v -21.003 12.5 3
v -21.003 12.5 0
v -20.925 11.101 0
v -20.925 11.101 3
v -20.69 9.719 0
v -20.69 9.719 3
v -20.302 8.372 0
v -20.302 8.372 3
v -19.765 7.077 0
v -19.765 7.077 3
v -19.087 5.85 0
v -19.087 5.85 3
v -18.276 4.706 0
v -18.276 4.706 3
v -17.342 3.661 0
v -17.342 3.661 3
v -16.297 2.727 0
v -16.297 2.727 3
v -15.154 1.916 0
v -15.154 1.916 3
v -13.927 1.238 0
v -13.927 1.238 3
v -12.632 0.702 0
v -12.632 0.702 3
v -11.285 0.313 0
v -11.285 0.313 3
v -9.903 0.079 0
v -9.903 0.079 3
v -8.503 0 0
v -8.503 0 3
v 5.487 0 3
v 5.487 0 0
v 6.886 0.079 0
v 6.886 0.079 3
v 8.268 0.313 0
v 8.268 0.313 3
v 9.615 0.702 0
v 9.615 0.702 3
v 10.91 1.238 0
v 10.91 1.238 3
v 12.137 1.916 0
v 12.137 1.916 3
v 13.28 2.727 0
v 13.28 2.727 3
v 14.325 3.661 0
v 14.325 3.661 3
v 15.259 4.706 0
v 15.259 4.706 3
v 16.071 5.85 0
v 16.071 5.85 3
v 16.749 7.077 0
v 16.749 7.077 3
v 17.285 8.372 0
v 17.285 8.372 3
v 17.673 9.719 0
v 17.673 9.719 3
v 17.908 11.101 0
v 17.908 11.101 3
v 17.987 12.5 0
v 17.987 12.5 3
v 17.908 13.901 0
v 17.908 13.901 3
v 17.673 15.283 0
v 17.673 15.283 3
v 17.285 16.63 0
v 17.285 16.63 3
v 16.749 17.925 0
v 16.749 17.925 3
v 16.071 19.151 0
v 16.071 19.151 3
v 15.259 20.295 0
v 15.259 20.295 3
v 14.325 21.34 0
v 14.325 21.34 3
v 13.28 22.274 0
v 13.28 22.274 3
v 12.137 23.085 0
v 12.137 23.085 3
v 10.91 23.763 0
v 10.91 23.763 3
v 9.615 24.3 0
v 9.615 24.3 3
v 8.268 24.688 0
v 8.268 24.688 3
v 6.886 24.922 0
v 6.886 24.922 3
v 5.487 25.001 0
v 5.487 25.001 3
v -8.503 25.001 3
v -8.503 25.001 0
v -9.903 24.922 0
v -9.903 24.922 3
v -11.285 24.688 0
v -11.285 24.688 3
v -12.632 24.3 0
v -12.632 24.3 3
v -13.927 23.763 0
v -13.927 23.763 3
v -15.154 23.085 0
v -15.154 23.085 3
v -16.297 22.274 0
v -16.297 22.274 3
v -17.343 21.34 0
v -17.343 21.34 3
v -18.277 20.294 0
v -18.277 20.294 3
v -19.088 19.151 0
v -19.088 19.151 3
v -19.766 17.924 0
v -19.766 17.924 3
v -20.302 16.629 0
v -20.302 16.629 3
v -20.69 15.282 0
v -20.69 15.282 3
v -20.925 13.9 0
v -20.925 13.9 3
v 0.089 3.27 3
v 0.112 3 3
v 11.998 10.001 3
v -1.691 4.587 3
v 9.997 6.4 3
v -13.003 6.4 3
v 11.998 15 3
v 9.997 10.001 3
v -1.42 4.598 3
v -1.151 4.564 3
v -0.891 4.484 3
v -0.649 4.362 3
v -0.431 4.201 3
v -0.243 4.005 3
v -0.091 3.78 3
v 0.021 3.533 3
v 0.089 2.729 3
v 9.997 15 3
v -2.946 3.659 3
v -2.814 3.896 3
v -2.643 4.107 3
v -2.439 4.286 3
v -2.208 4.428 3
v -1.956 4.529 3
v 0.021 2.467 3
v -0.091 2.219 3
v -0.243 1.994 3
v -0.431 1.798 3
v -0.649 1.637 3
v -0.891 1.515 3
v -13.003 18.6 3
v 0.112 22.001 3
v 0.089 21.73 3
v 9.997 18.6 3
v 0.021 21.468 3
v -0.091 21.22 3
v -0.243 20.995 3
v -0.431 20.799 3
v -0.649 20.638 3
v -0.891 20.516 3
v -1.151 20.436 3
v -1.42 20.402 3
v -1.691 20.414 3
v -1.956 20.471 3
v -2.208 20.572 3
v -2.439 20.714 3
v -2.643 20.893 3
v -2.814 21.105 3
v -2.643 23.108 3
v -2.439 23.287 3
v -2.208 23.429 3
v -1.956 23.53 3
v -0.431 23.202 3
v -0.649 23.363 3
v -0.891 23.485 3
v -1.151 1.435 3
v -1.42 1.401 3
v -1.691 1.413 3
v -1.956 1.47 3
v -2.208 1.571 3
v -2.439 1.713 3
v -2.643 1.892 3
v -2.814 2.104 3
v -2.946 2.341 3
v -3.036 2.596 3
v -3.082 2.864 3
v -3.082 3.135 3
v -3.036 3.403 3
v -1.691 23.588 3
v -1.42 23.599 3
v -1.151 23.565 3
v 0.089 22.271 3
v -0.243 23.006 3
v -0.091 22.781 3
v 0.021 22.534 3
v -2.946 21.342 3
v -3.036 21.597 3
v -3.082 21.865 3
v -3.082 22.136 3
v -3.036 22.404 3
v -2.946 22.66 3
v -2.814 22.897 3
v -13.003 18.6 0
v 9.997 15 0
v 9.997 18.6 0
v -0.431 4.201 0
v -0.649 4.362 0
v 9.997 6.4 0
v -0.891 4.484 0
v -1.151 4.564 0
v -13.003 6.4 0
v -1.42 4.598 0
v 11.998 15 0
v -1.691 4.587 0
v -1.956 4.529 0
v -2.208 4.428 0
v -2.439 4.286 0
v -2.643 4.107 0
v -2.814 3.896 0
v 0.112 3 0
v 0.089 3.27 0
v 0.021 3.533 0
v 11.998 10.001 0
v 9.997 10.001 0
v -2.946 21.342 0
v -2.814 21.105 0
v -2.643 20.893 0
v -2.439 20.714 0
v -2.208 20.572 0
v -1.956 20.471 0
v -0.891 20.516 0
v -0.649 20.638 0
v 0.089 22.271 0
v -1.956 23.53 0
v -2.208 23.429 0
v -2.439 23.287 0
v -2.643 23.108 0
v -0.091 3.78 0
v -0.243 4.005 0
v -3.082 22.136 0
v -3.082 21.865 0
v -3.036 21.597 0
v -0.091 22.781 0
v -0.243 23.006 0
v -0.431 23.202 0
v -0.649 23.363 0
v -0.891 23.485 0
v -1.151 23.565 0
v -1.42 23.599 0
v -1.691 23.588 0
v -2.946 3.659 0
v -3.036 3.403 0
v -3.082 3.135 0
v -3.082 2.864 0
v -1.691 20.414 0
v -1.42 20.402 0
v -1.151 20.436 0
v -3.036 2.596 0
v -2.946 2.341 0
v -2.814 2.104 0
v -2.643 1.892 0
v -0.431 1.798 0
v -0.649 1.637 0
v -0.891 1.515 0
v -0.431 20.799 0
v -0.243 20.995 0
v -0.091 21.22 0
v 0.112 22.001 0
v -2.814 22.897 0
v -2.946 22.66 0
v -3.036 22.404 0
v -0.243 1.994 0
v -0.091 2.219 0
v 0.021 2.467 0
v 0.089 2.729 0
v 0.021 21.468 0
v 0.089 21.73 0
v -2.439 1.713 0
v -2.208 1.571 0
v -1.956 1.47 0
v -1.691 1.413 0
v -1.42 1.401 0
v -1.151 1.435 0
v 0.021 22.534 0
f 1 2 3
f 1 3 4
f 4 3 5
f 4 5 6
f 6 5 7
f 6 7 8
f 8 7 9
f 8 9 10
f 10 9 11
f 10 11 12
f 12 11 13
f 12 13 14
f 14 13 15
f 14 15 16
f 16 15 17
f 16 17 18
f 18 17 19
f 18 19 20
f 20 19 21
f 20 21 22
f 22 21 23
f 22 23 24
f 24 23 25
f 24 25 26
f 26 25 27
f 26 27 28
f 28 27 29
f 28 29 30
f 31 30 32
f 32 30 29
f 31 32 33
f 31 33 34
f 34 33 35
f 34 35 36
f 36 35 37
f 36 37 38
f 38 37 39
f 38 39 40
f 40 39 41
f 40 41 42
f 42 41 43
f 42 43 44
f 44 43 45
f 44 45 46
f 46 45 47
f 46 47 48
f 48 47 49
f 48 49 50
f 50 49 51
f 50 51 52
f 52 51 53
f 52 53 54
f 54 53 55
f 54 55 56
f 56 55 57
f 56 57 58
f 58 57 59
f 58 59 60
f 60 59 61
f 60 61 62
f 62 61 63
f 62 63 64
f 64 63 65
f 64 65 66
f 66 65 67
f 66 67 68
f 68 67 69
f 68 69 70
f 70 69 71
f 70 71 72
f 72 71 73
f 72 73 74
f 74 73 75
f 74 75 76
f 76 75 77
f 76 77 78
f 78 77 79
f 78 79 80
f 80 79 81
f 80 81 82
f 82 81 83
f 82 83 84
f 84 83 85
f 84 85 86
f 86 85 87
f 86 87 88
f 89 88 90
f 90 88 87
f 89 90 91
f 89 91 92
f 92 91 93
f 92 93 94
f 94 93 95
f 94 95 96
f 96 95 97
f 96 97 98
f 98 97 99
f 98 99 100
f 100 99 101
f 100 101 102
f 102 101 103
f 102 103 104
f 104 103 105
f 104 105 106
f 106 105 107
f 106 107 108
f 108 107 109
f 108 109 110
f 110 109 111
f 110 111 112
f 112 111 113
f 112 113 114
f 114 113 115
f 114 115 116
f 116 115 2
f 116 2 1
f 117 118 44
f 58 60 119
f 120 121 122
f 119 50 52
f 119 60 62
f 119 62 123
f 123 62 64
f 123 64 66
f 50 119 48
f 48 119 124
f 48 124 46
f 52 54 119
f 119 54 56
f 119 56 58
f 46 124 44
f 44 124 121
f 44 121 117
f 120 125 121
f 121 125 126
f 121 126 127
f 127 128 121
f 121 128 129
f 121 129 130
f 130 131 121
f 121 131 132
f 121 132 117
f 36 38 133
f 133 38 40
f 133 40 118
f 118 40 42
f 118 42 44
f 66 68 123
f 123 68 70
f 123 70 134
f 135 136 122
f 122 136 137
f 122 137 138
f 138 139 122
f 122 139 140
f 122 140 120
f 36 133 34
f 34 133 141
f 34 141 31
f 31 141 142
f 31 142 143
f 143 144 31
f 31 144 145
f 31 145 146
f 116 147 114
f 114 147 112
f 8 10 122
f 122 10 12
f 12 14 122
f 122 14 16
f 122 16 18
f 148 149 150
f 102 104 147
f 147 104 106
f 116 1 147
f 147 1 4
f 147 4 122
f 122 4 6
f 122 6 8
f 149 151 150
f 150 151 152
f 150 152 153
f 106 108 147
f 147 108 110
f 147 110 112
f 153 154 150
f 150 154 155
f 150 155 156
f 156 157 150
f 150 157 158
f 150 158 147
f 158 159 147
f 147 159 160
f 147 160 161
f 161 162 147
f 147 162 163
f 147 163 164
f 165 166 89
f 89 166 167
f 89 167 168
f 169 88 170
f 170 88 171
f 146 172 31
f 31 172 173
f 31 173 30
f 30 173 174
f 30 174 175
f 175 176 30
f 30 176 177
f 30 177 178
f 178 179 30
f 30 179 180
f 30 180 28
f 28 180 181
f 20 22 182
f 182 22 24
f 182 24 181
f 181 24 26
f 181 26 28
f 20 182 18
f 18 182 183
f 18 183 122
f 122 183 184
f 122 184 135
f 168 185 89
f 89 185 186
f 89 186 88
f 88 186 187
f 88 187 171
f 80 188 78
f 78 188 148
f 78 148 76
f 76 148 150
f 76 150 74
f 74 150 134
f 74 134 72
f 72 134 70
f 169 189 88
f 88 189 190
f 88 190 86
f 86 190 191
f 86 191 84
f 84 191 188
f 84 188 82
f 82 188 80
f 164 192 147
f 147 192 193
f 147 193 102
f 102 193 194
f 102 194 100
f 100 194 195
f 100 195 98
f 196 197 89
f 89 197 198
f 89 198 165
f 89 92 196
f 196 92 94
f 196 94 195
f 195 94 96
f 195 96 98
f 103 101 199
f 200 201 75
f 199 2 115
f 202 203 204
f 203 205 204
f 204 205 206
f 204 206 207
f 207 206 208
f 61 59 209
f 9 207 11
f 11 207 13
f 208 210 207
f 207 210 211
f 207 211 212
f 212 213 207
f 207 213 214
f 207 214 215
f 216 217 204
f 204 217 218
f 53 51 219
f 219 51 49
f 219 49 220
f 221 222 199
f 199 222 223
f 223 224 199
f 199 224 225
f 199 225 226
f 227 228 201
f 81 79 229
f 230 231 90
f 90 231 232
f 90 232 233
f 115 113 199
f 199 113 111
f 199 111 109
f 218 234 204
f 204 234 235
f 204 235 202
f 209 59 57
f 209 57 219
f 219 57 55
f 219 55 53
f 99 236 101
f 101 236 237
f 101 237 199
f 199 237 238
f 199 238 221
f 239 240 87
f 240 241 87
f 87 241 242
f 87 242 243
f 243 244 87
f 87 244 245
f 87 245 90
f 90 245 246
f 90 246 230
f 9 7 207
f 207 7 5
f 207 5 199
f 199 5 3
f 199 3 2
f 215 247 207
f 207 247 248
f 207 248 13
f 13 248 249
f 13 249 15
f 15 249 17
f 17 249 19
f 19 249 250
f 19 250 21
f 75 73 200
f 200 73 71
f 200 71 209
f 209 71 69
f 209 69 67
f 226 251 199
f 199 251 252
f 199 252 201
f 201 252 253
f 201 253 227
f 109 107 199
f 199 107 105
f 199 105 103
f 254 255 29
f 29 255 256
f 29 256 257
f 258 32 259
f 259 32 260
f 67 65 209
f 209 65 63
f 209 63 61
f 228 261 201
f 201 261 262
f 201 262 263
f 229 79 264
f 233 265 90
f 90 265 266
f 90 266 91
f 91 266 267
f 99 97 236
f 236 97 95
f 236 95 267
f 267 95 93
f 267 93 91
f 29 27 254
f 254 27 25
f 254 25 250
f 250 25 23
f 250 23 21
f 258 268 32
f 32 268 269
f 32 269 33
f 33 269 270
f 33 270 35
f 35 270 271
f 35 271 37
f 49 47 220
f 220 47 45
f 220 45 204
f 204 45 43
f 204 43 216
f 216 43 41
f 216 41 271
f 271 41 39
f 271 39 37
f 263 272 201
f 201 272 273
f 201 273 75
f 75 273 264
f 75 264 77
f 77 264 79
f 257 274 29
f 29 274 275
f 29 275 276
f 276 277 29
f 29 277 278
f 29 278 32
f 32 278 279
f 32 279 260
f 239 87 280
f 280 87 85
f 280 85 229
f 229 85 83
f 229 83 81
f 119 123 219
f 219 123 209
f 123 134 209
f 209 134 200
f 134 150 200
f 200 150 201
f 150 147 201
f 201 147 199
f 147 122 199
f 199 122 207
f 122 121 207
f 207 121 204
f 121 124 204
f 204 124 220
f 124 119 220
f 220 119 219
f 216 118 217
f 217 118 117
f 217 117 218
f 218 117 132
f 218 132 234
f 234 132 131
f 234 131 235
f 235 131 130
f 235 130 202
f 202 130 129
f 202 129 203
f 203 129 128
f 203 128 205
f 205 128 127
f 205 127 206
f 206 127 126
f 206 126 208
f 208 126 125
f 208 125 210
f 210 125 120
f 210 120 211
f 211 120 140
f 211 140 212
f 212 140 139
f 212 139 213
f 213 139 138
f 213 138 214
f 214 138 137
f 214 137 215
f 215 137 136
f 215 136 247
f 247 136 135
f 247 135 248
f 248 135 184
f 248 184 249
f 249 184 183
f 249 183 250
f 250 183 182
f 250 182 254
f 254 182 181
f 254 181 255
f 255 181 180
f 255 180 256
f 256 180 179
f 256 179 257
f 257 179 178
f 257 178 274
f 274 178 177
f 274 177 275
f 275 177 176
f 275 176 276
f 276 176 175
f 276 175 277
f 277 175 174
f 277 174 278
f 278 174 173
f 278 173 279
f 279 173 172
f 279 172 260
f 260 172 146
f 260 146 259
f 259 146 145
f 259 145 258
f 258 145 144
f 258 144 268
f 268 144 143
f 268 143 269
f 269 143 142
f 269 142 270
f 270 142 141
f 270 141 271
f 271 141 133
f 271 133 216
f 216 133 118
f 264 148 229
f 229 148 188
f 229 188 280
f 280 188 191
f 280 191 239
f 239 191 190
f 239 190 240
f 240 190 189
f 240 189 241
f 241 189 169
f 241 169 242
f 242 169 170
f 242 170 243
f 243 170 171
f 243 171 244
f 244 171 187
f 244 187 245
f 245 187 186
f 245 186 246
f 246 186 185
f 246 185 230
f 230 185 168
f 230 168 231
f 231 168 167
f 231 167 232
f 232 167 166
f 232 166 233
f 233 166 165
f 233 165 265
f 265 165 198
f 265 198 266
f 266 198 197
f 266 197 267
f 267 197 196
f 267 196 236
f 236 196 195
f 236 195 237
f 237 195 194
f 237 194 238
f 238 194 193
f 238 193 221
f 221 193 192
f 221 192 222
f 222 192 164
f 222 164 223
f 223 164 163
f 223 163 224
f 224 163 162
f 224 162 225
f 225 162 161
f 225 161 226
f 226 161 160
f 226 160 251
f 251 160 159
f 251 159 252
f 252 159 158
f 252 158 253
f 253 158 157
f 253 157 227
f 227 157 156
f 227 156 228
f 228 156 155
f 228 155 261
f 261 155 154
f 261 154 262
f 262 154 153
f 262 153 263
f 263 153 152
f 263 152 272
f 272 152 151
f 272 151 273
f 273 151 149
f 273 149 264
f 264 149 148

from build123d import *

# Parameters (mm, degrees)
SKETCH_1_R          = 1.3
EXTRUDE_1_DEPTH     = 3
SKETCH_2_R          = 1.6
CUT_EXTRUDE_1_DEPTH = 33.790082592


with BuildPart() as part:
    # 草图1 → 凸台-拉伸1 (new body)
    with BuildSketch(Plane(origin=(0, 0, 0), x_dir=(-1, 0, 0), z_dir=(0, 0, -1))):
        with BuildLine():
            Line((8.503321513, 25.001), (-5.486589193, 25.001))
            ThreePointArc((-5.486589193, 25.001), (-14.325423958, 21.339834765), (-17.986589193, 12.501))
            Line((-17.986589193, 12.501), (-17.986589193, 12.5))
            ThreePointArc((-17.986589193, 12.5), (-14.325423958, 3.661165235), (-5.486589193, 0))
            Line((-5.486589193, 0), (8.503321493, 0))
            ThreePointArc((8.503321493, 0), (17.342156257, 3.661165235), (21.003321493, 12.5))
            ThreePointArc((21.003321493, 12.5), (17.342509831, 21.339481206), (8.503321513, 25.001))
        make_face()
        with Locations(Location((1.487905971, 22.0005, 0), (0, 0, 180))):
            Circle(SKETCH_1_R, mode=Mode.SUBTRACT)
        with Locations(Location((1.487905971, 2.9995, 0), (0, 0, 180))):
            Circle(SKETCH_1_R, mode=Mode.SUBTRACT)
        Polygon((-11.997794717, 15), (-9.996894717, 15), (-9.996894717, 18.6), (13.002605283, 18.6), (13.002605283, 6.4), (-9.996894717, 6.4), (-9.996894717, 10.001), (-11.997794717, 10.001), align=None, mode=Mode.SUBTRACT)
    extrude(amount=-EXTRUDE_1_DEPTH)

    # 草图2 → 切除-拉伸1 (cut, through all)
    with BuildSketch(Plane.XY.offset(3)):
        with Locations((-1.487905971, 22.0005)):
            Circle(SKETCH_2_R)
        with Locations((-1.487905971, 2.9995)):
            Circle(SKETCH_2_R)
    extrude(amount=-CUT_EXTRUDE_1_DEPTH, mode=Mode.SUBTRACT)


solid = part.part
